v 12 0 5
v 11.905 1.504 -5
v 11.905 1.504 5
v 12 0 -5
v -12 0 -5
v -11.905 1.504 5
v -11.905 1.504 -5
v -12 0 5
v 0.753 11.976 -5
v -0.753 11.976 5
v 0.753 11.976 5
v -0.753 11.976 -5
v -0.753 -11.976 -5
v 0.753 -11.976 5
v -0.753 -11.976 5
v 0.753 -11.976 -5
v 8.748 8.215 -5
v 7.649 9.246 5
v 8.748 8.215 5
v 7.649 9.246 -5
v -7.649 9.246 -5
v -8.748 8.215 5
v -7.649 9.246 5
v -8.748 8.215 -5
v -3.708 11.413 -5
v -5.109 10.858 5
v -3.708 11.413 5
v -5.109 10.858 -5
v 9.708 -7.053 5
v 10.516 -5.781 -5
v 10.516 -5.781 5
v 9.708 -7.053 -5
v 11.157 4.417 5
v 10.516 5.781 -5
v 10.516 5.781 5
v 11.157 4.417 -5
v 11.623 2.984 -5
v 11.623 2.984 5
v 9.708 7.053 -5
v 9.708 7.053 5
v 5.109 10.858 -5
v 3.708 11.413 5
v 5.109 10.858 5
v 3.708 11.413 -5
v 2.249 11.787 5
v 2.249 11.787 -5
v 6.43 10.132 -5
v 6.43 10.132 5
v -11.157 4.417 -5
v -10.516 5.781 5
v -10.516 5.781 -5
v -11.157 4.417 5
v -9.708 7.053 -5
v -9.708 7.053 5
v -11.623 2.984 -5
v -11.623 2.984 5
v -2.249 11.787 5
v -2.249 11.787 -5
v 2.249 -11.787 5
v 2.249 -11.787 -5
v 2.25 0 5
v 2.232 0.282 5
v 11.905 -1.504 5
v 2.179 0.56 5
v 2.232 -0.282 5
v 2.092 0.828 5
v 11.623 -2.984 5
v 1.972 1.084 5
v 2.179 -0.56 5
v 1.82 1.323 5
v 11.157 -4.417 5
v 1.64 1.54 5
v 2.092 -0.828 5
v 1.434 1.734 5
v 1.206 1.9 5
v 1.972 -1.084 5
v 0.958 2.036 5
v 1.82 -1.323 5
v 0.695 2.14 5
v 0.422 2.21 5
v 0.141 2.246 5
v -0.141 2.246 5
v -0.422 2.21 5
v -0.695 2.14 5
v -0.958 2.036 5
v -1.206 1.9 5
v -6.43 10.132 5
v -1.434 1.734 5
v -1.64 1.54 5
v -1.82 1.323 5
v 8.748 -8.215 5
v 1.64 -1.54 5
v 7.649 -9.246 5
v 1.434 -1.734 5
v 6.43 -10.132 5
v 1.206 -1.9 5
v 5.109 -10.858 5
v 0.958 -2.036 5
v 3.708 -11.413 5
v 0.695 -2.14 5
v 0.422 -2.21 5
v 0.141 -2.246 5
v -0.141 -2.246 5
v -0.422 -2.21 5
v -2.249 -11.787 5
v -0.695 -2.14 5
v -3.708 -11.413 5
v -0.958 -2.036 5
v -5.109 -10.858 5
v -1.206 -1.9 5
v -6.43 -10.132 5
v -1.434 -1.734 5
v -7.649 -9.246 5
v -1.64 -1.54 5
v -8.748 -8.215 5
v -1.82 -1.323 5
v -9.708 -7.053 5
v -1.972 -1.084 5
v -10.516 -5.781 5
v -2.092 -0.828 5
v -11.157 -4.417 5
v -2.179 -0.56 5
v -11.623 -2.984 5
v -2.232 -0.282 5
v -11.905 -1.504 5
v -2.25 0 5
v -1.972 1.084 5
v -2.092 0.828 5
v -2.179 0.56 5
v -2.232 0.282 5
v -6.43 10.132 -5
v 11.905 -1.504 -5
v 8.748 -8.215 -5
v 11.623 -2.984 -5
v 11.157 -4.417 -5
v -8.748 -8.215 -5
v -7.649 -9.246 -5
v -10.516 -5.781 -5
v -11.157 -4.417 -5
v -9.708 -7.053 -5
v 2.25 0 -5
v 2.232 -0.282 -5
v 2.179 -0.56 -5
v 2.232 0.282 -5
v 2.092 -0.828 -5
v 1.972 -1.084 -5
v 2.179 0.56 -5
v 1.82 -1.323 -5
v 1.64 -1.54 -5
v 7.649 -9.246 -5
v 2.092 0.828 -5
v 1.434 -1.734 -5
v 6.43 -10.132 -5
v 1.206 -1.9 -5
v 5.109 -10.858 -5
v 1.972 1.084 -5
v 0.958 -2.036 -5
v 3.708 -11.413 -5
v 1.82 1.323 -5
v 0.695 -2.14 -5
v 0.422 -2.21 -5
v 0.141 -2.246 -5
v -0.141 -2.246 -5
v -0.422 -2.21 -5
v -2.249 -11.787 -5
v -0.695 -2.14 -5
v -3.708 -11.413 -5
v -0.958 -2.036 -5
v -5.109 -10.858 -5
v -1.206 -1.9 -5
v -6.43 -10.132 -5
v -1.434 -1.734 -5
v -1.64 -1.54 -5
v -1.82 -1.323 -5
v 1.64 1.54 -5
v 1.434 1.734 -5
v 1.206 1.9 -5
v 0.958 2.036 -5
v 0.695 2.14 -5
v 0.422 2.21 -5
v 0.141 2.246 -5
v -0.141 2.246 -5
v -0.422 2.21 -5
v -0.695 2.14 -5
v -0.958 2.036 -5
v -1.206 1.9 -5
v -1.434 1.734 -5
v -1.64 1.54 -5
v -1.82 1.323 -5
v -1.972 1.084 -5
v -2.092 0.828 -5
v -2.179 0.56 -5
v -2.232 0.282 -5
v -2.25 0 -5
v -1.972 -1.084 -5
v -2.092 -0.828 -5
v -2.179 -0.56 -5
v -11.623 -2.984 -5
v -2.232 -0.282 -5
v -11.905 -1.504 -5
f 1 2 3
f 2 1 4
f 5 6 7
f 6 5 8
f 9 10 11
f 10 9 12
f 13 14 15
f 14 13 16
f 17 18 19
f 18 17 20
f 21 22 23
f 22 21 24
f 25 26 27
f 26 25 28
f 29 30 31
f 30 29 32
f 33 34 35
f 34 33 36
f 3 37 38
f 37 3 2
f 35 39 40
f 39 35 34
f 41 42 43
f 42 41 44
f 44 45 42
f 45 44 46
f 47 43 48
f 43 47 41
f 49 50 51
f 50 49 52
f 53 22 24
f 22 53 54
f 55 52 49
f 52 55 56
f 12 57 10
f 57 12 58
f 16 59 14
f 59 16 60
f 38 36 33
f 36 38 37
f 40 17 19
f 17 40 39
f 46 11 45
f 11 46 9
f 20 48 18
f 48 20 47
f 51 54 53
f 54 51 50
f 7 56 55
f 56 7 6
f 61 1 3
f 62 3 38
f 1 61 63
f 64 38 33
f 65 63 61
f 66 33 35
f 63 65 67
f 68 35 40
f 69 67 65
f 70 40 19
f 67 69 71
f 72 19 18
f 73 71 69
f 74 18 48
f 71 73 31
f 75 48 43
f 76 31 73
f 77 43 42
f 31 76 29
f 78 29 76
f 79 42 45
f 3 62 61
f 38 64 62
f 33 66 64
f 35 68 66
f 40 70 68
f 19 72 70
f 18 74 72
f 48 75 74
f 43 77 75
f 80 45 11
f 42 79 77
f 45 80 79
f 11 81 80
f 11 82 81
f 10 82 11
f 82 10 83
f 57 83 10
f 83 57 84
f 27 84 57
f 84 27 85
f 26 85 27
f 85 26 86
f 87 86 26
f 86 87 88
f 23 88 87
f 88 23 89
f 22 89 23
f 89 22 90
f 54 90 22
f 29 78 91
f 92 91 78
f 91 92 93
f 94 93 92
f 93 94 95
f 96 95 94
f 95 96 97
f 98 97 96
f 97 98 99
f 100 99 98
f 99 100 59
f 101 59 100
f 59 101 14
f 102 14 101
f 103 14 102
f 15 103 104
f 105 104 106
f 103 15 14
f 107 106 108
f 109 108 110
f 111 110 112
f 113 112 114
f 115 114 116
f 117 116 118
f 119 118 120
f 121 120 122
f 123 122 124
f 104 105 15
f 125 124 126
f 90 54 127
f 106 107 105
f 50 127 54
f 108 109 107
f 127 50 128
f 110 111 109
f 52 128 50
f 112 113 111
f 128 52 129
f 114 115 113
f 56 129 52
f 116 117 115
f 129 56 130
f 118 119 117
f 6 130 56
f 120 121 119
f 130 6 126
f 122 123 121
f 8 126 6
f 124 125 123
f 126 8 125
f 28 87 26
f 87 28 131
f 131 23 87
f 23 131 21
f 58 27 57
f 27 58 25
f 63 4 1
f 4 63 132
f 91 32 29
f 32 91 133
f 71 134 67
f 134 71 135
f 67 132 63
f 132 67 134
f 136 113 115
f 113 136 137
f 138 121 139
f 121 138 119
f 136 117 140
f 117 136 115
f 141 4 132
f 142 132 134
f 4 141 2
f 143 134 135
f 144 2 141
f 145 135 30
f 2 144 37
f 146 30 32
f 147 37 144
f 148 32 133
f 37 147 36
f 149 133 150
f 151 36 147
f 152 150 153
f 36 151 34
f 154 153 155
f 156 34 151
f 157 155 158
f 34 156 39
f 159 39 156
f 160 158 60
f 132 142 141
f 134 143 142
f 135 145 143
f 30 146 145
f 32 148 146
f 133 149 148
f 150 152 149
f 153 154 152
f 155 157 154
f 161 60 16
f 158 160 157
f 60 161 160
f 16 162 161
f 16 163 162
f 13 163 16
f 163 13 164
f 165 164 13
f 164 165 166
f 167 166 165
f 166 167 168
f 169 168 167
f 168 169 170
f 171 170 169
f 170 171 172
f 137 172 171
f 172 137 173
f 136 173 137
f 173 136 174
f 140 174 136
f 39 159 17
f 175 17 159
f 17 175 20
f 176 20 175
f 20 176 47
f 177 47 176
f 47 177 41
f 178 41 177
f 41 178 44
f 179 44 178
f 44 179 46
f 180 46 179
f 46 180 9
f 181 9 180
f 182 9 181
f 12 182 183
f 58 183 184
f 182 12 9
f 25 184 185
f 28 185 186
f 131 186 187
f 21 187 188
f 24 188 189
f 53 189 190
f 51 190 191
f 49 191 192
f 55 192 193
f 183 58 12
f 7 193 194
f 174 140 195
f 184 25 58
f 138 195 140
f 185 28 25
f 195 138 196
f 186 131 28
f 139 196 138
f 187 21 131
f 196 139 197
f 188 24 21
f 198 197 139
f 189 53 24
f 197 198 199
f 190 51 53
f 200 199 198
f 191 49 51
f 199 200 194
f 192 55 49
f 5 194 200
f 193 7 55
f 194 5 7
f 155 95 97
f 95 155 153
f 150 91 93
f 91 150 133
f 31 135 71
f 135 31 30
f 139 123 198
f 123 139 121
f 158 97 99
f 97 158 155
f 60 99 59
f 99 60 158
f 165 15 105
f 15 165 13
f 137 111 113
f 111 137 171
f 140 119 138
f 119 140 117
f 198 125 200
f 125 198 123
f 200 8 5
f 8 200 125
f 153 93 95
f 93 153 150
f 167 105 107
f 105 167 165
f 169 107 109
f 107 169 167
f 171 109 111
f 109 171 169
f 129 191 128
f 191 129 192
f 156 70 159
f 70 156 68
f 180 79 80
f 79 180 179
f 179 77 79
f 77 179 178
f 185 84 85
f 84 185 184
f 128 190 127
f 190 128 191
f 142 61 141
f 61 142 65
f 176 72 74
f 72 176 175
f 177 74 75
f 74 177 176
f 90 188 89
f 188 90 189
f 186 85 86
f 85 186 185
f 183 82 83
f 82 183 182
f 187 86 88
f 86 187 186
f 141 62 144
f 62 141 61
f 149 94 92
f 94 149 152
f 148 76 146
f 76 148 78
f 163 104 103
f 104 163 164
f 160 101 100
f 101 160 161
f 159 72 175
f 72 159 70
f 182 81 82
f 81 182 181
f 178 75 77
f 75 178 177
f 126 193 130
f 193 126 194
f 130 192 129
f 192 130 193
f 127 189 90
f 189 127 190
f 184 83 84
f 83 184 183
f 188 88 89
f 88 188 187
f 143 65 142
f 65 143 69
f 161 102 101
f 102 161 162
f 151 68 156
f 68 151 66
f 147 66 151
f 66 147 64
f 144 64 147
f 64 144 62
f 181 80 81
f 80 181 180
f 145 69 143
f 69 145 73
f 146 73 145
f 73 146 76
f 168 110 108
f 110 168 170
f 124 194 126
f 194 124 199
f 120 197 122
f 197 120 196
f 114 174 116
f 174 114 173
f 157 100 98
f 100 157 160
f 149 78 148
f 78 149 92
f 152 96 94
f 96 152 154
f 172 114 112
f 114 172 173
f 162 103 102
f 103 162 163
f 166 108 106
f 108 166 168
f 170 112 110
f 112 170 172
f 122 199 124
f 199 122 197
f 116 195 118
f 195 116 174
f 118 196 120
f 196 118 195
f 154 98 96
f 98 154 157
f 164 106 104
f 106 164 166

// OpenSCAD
$fn = 50;


difference() {
	union() {
		translate(v = [0, 0, -5.0000000000]) {
			cylinder(h = 10, r = 12.0000000000);
		}
	}
	union() {
		translate(v = [0, 0, -100.0000000000]) {
			cylinder(h = 200, r = 2.2500000000);
		}
	}
}
